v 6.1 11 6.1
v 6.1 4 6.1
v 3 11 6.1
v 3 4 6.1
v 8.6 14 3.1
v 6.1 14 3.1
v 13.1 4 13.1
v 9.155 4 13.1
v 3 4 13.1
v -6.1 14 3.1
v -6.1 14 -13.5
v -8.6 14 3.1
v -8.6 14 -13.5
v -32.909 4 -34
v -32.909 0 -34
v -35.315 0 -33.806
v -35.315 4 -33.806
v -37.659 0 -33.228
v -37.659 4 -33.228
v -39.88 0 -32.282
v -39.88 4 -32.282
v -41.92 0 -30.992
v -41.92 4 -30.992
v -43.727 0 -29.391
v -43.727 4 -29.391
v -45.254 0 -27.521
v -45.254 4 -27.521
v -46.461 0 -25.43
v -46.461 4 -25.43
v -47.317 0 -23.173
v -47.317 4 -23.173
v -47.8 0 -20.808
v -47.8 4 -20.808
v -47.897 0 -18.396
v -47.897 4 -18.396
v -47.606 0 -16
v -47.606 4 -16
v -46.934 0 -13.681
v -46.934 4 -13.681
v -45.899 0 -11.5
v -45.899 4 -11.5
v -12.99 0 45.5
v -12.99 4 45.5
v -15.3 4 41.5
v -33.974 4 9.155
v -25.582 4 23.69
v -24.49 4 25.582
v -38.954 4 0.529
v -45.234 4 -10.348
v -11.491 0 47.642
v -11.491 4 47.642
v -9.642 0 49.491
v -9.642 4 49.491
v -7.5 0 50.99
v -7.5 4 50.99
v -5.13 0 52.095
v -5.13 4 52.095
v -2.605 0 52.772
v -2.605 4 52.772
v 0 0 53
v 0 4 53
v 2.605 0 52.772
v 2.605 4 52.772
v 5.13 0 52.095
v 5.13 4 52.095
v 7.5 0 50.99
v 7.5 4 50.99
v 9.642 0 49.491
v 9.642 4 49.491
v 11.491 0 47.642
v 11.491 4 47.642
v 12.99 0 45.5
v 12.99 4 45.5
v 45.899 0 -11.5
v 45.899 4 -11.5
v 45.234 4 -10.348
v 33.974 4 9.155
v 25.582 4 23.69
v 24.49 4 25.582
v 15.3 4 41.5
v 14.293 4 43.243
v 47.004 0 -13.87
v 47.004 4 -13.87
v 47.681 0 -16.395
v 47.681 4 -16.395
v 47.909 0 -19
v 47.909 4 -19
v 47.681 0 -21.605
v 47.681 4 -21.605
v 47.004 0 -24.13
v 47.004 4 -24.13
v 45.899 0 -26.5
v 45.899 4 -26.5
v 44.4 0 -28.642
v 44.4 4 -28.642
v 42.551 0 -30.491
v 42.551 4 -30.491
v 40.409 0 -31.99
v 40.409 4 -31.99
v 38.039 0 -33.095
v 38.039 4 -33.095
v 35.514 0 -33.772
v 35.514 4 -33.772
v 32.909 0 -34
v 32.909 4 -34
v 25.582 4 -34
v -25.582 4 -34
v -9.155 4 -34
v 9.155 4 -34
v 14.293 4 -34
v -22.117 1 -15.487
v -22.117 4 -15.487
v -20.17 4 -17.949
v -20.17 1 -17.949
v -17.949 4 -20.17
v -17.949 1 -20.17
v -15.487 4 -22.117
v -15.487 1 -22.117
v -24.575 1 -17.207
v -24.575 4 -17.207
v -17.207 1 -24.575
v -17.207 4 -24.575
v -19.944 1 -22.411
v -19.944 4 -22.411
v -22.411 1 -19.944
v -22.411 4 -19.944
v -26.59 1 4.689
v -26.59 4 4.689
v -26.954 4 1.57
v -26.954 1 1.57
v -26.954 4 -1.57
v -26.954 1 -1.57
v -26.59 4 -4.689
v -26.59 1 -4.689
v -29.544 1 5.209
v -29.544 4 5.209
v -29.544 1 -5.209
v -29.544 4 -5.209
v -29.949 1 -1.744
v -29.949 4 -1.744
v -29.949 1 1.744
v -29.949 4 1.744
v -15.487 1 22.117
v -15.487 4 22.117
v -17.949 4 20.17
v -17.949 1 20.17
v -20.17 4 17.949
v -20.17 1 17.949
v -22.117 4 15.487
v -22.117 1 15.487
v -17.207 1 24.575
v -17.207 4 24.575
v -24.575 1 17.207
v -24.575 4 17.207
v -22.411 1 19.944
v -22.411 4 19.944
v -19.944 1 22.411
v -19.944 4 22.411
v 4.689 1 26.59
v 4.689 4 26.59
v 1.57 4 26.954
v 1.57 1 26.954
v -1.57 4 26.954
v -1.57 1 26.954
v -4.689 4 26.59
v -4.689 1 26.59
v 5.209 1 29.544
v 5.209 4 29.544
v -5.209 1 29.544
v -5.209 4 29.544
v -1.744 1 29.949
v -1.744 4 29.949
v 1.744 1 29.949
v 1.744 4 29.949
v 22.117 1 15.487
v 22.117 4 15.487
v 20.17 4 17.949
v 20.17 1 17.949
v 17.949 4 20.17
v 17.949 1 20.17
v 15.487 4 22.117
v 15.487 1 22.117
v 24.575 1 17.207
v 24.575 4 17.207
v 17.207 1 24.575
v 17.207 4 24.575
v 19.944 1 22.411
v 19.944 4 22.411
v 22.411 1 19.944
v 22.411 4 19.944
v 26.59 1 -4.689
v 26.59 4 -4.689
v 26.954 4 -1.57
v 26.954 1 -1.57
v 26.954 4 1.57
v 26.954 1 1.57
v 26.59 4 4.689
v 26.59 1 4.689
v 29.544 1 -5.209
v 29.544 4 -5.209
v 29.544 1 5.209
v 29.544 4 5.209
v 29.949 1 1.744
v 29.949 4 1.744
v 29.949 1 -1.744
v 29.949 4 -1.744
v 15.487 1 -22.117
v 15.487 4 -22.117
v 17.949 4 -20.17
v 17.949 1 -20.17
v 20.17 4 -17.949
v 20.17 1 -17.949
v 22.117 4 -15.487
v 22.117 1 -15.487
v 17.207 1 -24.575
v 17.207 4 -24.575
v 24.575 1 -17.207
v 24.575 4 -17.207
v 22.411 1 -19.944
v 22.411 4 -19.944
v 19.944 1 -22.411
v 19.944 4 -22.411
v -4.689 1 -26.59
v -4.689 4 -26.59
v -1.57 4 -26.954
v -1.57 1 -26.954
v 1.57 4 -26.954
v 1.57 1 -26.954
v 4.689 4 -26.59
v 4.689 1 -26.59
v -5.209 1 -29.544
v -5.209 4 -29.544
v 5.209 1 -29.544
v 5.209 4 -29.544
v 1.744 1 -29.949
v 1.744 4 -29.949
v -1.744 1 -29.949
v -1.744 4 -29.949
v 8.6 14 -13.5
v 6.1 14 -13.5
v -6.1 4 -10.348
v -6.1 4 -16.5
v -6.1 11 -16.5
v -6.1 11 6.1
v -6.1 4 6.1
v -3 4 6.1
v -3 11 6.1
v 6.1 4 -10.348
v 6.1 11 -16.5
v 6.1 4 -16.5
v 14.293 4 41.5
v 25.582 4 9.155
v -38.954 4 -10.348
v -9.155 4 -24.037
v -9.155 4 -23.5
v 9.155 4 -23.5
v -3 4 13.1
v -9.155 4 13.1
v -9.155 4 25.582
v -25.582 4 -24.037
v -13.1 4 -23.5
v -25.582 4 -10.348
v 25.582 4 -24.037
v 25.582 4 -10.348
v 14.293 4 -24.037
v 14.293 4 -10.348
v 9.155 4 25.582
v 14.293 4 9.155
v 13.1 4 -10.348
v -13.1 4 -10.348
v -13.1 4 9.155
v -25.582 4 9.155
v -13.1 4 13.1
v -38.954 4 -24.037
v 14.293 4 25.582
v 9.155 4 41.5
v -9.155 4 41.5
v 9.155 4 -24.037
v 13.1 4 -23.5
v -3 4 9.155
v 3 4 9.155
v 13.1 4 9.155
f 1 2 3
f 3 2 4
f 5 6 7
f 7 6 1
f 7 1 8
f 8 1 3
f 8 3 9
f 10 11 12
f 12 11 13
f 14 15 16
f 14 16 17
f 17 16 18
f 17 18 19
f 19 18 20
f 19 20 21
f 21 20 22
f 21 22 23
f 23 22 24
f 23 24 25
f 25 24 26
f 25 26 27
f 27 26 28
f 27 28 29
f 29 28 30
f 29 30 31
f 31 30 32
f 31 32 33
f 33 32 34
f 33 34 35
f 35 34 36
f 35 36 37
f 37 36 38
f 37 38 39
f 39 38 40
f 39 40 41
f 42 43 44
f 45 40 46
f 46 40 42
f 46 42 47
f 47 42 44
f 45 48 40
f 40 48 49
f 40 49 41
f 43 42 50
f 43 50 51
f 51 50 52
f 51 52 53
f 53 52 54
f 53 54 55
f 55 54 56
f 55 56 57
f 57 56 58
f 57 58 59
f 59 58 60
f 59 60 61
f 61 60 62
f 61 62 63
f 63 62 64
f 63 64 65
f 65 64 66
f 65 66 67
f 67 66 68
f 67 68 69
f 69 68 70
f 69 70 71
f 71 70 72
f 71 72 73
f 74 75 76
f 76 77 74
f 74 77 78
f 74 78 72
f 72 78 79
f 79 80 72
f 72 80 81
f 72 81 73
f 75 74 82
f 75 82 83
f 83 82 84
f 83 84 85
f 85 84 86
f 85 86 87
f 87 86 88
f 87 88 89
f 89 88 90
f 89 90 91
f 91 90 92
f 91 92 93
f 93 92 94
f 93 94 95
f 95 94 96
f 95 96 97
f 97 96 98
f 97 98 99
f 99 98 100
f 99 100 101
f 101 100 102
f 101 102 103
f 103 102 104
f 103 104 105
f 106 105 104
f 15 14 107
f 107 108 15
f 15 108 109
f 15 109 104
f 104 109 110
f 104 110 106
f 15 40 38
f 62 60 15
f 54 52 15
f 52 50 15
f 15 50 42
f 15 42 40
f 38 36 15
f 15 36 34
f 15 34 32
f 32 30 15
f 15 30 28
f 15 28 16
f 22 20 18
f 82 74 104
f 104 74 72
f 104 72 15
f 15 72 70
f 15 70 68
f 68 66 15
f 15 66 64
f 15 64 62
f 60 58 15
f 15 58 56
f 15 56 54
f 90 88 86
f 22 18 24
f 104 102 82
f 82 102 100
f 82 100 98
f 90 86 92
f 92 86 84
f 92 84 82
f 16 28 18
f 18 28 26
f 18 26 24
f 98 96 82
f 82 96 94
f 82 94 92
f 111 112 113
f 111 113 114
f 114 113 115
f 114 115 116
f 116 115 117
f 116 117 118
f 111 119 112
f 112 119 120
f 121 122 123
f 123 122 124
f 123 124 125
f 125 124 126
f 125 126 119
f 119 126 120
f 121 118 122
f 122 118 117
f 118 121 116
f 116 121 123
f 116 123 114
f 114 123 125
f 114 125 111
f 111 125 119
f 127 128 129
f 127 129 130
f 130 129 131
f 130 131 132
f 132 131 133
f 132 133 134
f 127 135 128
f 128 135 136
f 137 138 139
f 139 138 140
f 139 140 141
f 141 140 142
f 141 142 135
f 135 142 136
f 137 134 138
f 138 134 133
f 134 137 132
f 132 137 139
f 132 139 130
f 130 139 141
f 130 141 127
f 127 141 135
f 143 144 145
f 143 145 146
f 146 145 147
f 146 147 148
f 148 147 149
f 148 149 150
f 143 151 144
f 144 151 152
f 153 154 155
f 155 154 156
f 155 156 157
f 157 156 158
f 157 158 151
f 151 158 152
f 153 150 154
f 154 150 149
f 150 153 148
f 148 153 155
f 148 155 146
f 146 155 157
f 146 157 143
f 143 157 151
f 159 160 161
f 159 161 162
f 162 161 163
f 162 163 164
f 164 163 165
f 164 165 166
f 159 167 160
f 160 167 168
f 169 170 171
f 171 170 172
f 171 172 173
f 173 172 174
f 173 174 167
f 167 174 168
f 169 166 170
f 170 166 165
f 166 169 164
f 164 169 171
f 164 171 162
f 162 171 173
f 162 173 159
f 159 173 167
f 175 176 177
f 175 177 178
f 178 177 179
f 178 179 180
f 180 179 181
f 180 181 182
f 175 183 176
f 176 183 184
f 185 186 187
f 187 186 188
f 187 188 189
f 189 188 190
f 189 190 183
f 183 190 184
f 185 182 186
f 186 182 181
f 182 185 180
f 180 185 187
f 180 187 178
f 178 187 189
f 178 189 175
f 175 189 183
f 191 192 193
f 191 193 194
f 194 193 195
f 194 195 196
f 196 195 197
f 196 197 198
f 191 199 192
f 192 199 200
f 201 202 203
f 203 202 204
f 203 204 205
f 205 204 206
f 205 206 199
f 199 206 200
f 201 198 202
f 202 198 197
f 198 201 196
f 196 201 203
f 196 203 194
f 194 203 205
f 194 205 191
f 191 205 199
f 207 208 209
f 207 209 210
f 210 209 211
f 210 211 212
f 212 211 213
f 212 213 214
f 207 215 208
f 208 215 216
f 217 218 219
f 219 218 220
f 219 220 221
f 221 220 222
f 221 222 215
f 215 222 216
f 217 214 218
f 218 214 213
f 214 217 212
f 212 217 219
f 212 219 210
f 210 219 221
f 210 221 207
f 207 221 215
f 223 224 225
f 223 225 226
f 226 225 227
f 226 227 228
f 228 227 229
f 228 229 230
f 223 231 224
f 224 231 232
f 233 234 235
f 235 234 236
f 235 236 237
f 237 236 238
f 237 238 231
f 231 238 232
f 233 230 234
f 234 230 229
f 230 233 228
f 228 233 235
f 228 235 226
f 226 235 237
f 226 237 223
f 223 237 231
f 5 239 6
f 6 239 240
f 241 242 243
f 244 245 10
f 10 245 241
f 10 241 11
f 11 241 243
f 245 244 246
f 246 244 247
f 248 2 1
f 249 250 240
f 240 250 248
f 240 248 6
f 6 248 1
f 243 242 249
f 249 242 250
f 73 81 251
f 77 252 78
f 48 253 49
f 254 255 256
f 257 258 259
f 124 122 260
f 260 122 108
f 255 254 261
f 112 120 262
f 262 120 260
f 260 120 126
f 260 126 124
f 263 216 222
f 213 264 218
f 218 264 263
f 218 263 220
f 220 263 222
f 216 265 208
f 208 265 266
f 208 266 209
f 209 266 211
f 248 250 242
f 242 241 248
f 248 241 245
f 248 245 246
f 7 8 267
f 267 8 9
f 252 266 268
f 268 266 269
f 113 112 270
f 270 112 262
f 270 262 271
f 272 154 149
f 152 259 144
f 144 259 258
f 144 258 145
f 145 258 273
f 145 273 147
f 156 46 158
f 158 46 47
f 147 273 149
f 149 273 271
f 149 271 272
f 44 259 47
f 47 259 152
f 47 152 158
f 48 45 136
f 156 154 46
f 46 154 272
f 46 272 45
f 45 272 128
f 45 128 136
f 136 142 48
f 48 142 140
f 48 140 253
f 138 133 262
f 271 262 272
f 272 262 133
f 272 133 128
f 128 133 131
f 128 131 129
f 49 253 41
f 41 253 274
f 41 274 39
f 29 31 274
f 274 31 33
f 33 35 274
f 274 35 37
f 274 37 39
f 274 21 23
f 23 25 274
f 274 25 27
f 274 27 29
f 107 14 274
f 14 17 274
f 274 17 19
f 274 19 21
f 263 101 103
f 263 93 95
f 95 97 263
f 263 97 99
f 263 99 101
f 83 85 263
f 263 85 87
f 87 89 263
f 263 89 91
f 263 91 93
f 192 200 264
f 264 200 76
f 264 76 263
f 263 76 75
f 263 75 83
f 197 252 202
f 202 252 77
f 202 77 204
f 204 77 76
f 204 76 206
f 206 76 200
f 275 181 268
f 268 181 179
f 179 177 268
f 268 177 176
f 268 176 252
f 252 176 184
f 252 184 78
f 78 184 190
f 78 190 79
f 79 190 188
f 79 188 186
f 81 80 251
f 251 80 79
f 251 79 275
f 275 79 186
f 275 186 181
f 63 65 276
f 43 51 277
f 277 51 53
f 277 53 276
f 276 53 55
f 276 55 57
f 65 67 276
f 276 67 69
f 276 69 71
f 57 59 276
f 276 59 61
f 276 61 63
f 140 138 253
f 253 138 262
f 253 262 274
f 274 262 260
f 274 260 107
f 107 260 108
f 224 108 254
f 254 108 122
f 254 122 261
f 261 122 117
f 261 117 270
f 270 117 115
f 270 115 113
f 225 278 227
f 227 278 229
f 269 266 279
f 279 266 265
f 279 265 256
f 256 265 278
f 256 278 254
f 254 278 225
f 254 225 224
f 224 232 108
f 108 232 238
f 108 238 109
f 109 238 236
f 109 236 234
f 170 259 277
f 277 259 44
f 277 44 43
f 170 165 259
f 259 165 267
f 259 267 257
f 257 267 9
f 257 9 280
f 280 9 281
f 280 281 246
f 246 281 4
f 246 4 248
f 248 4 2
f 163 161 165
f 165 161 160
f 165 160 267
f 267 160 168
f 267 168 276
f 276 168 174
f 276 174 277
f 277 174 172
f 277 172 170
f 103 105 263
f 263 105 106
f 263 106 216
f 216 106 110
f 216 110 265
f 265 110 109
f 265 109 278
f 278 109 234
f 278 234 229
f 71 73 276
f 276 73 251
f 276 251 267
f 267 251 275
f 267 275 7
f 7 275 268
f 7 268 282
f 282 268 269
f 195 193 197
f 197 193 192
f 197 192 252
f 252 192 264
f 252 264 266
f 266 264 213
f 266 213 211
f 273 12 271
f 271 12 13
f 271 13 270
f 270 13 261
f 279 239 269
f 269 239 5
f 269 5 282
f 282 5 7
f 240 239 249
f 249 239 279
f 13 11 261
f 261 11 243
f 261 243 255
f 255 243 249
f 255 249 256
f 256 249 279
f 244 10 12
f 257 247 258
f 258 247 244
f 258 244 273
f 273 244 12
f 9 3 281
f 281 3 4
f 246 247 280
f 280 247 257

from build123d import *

# Parameters (mm, degrees)
BOSS_EXTRUDE1_DEPTH = 4
CUT_EXTRUDE1_DEPTH  = 3
SKETCH3_W           = 26.2
SKETCH3_H           = 36.6
SKETCH3_W_2         = 12.2
SKETCH3_H_2         = 22.6
BOSS_EXTRUDE8_DEPTH = 10
CHAMFER3_SIZE2      = 4.5
CHAMFER3_SIZE       = 10
CHAMFER4_SIZE2      = 10
CHAMFER4_SIZE       = 4.5
CHAMFER5_SIZE       = 10
CHAMFER6_SIZE       = 10
SKETCH4_W           = 6
SKETCH4_H           = 7
CUT_EXTRUDE2_DEPTH  = 69.48999168


# Some blends are built 0.0001 mm under size
with BuildPart() as part:
    # Sketch1 → Boss-Extrude1 (new body)
    with BuildSketch(Plane(origin=(0, 0, 0), x_dir=(1, 0, 0), z_dir=(0, 1, 0))):
        with BuildLine():
            Line((32.908965344, 34), (-32.908965344, 34))
            ThreePointArc((-32.908965344, 34), (-45.899346401, 26.5), (-45.899346401, 11.5))
            Line((-45.899346401, 11.5), (-12.990381057, -45.5))
            ThreePointArc((-12.990381057, -45.5), (0, -53), (12.990381057, -45.5))
            Line((12.990381057, -45.5), (45.899346401, 11.5))
            ThreePointArc((45.899346401, 11.5), (45.899346401, 26.5), (32.908965344, 34))
        make_face()
    extrude(amount=BOSS_EXTRUDE1_DEPTH)

    # Sketch2 → Cut-Extrude1 (cut)
    with BuildSketch(Plane(origin=(0, 4, 0), x_dir=(1, 0, 0), z_dir=(0, 1, 0))):
        with BuildLine():
            Line((4.688500797, 26.589809331), (5.20944533, 29.54423259))
            ThreePointArc((5.20944533, 29.54423259), (0, 30), (-5.20944533, 29.54423259))
            Line((-5.20944533, 29.54423259), (-4.688500797, 26.589809331))
            ThreePointArc((-4.688500797, 26.589809331), (0, 27), (4.688500797, 26.589809331))
        make_face()
        with BuildLine():
            Line((15.486563781, 22.117105196), (17.207293091, 24.574561329))
            ThreePointArc((17.207293091, 24.574561329), (21.213203436, 21.213203436), (24.574561329, 17.207293091))
            Line((24.574561329, 17.207293091), (22.117105196, 15.486563781))
            ThreePointArc((22.117105196, 15.486563781), (19.091883092, 19.091883092), (15.486563781, 22.117105196))
        make_face()
        with BuildLine():
            Line((26.589809331, 4.688500797), (29.54423259, 5.20944533))
            ThreePointArc((29.54423259, 5.20944533), (30, 0), (29.54423259, -5.20944533))
            Line((29.54423259, -5.20944533), (26.589809331, -4.688500797))
            ThreePointArc((26.589809331, -4.688500797), (27, 0), (26.589809331, 4.688500797))
        make_face()
        with BuildLine():
            Line((22.117105196, -15.486563781), (24.574561329, -17.207293091))
            ThreePointArc((24.574561329, -17.207293091), (21.213203436, -21.213203436), (17.207293091, -24.574561329))
            Line((17.207293091, -24.574561329), (15.486563781, -22.117105196))
            ThreePointArc((15.486563781, -22.117105196), (19.091883092, -19.091883092), (22.117105196, -15.486563781))
        make_face()
        with BuildLine():
            Line((4.688500797, -26.589809331), (5.20944533, -29.54423259))
            ThreePointArc((5.20944533, -29.54423259), (0, -30), (-5.20944533, -29.54423259))
            Line((-5.20944533, -29.54423259), (-4.688500797, -26.589809331))
            ThreePointArc((-4.688500797, -26.589809331), (0, -27), (4.688500797, -26.589809331))
        make_face()
        with BuildLine():
            Line((-15.486563781, -22.117105196), (-17.207293091, -24.574561329))
            ThreePointArc((-17.207293091, -24.574561329), (-21.213203436, -21.213203436), (-24.574561329, -17.207293091))
            Line((-24.574561329, -17.207293091), (-22.117105196, -15.486563781))
            ThreePointArc((-22.117105196, -15.486563781), (-19.091883092, -19.091883092), (-15.486563781, -22.117105196))
        make_face()
        with BuildLine():
            Line((-26.589809331, -4.688500797), (-29.54423259, -5.20944533))
            ThreePointArc((-29.54423259, -5.20944533), (-30, 0), (-29.54423259, 5.20944533))
            Line((-29.54423259, 5.20944533), (-26.589809331, 4.688500797))
            ThreePointArc((-26.589809331, 4.688500797), (-27, 0), (-26.589809331, -4.688500797))
        make_face()
        with BuildLine():
            Line((-22.117105196, 15.486563781), (-24.574561329, 17.207293091))
            ThreePointArc((-24.574561329, 17.207293091), (-21.213203436, 21.213203436), (-17.207293091, 24.574561329))
            Line((-17.207293091, 24.574561329), (-15.486563781, 22.117105196))
            ThreePointArc((-15.486563781, 22.117105196), (-19.091883092, 19.091883092), (-22.117105196, 15.486563781))
        make_face()
    extrude(amount=-CUT_EXTRUDE1_DEPTH, mode=Mode.SUBTRACT)

    # Sketch3 → Boss-Extrude8 (add)
    with BuildSketch(Plane(origin=(0, 4, 0), x_dir=(1, 0, 0), z_dir=(0, 1, 0))):
        with Locations((0, 5.2)):
            Rectangle(SKETCH3_W, SKETCH3_H)
        with Locations((0, 5.2)):
            Rectangle(SKETCH3_W_2, SKETCH3_H_2, mode=Mode.SUBTRACT)
    extrude(amount=BOSS_EXTRUDE8_DEPTH)

    # Chamfer3
    chamfer3_edges = [part.edges().sort_by_distance(p)[0] for p in [
        (-13.1, 14, -5.2),
    ]]
    chamfer3_side = [part.faces().sort_by_distance(p)[0] for p in [
        (-13.1, 13.91, -5.2),
    ]]
    chamfer(chamfer3_edges, length=CHAMFER3_SIZE - 0.0001, length2=CHAMFER3_SIZE2 - 0.0001, reference=chamfer3_side[0])  # a hair under: the kernel refuses the full size

    # Chamfer4
    chamfer4_edges = [part.edges().sort_by_distance(p)[0] for p in [
        (13.1, 14, -5.2),
    ]]
    chamfer4_side = [part.faces().sort_by_distance(p)[0] for p in [
        (13.01, 14, -5.2),
    ]]
    chamfer(chamfer4_edges, length=CHAMFER4_SIZE - 0.0001, length2=CHAMFER4_SIZE2 - 0.0001, reference=chamfer4_side[0])  # a hair under: the kernel refuses the full size

    # Chamfer5
    # the kernel refuses this chamfer: 10 mm, written as the material it takes off along each edge
    with BuildSketch(Plane(origin=(-34.31692988, 14, -23.5), x_dir=(0, 0.027495876610586317, 0.9996219169112968), z_dir=(1, 0, 0))) as chamfer5_piece_1_section:
        Polygon((CHAMFER5_SIZE * 0.999621916911, CHAMFER5_SIZE * 0.0274958766106), (-CHAMFER5_SIZE * 0.0274958766106, CHAMFER5_SIZE * 0.999621916911), (0, 0), align=None)
    chamfer5_piece_1 = extrude(amount=68.633859759, mode=Mode.PRIVATE)
    chamfer5_piece_1 = split(chamfer5_piece_1, bisect_by=Plane(origin=(0, 4, -20.195958457), z_dir=(0, 1, 0)), keep=Keep.TOP, mode=Mode.PRIVATE)
    add(chamfer5_piece_1, mode=Mode.SUBTRACT)

    # Chamfer6
    # the kernel refuses this chamfer: 10 mm, written as the material it takes off along each edge
    with BuildSketch(Plane(origin=(34.31692988, 14, 13.1), x_dir=(0, -0.9996219169112968, 0.027495876610586317), z_dir=(-1, 0, 0))) as chamfer6_piece_1_section:
        Polygon((CHAMFER6_SIZE * 0.999621916911, -CHAMFER6_SIZE * 0.0274958766106), (-CHAMFER6_SIZE * 0.0274958766106, -CHAMFER6_SIZE * 0.999621916911), (0, 0), align=None)
    chamfer6_piece_1 = extrude(amount=68.633859759, mode=Mode.PRIVATE)
    chamfer6_piece_1 = split(chamfer6_piece_1, bisect_by=Plane(origin=(0, 4, 9.795958457), z_dir=(0, 1, 0)), keep=Keep.TOP, mode=Mode.PRIVATE)
    add(chamfer6_piece_1, mode=Mode.SUBTRACT)

    # Sketch4 → Cut-Extrude2 (cut, through all)
    with BuildSketch(Plane(origin=(0, 0, 6.1), x_dir=(-1, 0, 0), z_dir=(0, 0, -1))):
        with Locations((0, 7.5)):
            Rectangle(SKETCH4_W, SKETCH4_H)
    extrude(amount=-CUT_EXTRUDE2_DEPTH, mode=Mode.SUBTRACT)


solid = part.part
